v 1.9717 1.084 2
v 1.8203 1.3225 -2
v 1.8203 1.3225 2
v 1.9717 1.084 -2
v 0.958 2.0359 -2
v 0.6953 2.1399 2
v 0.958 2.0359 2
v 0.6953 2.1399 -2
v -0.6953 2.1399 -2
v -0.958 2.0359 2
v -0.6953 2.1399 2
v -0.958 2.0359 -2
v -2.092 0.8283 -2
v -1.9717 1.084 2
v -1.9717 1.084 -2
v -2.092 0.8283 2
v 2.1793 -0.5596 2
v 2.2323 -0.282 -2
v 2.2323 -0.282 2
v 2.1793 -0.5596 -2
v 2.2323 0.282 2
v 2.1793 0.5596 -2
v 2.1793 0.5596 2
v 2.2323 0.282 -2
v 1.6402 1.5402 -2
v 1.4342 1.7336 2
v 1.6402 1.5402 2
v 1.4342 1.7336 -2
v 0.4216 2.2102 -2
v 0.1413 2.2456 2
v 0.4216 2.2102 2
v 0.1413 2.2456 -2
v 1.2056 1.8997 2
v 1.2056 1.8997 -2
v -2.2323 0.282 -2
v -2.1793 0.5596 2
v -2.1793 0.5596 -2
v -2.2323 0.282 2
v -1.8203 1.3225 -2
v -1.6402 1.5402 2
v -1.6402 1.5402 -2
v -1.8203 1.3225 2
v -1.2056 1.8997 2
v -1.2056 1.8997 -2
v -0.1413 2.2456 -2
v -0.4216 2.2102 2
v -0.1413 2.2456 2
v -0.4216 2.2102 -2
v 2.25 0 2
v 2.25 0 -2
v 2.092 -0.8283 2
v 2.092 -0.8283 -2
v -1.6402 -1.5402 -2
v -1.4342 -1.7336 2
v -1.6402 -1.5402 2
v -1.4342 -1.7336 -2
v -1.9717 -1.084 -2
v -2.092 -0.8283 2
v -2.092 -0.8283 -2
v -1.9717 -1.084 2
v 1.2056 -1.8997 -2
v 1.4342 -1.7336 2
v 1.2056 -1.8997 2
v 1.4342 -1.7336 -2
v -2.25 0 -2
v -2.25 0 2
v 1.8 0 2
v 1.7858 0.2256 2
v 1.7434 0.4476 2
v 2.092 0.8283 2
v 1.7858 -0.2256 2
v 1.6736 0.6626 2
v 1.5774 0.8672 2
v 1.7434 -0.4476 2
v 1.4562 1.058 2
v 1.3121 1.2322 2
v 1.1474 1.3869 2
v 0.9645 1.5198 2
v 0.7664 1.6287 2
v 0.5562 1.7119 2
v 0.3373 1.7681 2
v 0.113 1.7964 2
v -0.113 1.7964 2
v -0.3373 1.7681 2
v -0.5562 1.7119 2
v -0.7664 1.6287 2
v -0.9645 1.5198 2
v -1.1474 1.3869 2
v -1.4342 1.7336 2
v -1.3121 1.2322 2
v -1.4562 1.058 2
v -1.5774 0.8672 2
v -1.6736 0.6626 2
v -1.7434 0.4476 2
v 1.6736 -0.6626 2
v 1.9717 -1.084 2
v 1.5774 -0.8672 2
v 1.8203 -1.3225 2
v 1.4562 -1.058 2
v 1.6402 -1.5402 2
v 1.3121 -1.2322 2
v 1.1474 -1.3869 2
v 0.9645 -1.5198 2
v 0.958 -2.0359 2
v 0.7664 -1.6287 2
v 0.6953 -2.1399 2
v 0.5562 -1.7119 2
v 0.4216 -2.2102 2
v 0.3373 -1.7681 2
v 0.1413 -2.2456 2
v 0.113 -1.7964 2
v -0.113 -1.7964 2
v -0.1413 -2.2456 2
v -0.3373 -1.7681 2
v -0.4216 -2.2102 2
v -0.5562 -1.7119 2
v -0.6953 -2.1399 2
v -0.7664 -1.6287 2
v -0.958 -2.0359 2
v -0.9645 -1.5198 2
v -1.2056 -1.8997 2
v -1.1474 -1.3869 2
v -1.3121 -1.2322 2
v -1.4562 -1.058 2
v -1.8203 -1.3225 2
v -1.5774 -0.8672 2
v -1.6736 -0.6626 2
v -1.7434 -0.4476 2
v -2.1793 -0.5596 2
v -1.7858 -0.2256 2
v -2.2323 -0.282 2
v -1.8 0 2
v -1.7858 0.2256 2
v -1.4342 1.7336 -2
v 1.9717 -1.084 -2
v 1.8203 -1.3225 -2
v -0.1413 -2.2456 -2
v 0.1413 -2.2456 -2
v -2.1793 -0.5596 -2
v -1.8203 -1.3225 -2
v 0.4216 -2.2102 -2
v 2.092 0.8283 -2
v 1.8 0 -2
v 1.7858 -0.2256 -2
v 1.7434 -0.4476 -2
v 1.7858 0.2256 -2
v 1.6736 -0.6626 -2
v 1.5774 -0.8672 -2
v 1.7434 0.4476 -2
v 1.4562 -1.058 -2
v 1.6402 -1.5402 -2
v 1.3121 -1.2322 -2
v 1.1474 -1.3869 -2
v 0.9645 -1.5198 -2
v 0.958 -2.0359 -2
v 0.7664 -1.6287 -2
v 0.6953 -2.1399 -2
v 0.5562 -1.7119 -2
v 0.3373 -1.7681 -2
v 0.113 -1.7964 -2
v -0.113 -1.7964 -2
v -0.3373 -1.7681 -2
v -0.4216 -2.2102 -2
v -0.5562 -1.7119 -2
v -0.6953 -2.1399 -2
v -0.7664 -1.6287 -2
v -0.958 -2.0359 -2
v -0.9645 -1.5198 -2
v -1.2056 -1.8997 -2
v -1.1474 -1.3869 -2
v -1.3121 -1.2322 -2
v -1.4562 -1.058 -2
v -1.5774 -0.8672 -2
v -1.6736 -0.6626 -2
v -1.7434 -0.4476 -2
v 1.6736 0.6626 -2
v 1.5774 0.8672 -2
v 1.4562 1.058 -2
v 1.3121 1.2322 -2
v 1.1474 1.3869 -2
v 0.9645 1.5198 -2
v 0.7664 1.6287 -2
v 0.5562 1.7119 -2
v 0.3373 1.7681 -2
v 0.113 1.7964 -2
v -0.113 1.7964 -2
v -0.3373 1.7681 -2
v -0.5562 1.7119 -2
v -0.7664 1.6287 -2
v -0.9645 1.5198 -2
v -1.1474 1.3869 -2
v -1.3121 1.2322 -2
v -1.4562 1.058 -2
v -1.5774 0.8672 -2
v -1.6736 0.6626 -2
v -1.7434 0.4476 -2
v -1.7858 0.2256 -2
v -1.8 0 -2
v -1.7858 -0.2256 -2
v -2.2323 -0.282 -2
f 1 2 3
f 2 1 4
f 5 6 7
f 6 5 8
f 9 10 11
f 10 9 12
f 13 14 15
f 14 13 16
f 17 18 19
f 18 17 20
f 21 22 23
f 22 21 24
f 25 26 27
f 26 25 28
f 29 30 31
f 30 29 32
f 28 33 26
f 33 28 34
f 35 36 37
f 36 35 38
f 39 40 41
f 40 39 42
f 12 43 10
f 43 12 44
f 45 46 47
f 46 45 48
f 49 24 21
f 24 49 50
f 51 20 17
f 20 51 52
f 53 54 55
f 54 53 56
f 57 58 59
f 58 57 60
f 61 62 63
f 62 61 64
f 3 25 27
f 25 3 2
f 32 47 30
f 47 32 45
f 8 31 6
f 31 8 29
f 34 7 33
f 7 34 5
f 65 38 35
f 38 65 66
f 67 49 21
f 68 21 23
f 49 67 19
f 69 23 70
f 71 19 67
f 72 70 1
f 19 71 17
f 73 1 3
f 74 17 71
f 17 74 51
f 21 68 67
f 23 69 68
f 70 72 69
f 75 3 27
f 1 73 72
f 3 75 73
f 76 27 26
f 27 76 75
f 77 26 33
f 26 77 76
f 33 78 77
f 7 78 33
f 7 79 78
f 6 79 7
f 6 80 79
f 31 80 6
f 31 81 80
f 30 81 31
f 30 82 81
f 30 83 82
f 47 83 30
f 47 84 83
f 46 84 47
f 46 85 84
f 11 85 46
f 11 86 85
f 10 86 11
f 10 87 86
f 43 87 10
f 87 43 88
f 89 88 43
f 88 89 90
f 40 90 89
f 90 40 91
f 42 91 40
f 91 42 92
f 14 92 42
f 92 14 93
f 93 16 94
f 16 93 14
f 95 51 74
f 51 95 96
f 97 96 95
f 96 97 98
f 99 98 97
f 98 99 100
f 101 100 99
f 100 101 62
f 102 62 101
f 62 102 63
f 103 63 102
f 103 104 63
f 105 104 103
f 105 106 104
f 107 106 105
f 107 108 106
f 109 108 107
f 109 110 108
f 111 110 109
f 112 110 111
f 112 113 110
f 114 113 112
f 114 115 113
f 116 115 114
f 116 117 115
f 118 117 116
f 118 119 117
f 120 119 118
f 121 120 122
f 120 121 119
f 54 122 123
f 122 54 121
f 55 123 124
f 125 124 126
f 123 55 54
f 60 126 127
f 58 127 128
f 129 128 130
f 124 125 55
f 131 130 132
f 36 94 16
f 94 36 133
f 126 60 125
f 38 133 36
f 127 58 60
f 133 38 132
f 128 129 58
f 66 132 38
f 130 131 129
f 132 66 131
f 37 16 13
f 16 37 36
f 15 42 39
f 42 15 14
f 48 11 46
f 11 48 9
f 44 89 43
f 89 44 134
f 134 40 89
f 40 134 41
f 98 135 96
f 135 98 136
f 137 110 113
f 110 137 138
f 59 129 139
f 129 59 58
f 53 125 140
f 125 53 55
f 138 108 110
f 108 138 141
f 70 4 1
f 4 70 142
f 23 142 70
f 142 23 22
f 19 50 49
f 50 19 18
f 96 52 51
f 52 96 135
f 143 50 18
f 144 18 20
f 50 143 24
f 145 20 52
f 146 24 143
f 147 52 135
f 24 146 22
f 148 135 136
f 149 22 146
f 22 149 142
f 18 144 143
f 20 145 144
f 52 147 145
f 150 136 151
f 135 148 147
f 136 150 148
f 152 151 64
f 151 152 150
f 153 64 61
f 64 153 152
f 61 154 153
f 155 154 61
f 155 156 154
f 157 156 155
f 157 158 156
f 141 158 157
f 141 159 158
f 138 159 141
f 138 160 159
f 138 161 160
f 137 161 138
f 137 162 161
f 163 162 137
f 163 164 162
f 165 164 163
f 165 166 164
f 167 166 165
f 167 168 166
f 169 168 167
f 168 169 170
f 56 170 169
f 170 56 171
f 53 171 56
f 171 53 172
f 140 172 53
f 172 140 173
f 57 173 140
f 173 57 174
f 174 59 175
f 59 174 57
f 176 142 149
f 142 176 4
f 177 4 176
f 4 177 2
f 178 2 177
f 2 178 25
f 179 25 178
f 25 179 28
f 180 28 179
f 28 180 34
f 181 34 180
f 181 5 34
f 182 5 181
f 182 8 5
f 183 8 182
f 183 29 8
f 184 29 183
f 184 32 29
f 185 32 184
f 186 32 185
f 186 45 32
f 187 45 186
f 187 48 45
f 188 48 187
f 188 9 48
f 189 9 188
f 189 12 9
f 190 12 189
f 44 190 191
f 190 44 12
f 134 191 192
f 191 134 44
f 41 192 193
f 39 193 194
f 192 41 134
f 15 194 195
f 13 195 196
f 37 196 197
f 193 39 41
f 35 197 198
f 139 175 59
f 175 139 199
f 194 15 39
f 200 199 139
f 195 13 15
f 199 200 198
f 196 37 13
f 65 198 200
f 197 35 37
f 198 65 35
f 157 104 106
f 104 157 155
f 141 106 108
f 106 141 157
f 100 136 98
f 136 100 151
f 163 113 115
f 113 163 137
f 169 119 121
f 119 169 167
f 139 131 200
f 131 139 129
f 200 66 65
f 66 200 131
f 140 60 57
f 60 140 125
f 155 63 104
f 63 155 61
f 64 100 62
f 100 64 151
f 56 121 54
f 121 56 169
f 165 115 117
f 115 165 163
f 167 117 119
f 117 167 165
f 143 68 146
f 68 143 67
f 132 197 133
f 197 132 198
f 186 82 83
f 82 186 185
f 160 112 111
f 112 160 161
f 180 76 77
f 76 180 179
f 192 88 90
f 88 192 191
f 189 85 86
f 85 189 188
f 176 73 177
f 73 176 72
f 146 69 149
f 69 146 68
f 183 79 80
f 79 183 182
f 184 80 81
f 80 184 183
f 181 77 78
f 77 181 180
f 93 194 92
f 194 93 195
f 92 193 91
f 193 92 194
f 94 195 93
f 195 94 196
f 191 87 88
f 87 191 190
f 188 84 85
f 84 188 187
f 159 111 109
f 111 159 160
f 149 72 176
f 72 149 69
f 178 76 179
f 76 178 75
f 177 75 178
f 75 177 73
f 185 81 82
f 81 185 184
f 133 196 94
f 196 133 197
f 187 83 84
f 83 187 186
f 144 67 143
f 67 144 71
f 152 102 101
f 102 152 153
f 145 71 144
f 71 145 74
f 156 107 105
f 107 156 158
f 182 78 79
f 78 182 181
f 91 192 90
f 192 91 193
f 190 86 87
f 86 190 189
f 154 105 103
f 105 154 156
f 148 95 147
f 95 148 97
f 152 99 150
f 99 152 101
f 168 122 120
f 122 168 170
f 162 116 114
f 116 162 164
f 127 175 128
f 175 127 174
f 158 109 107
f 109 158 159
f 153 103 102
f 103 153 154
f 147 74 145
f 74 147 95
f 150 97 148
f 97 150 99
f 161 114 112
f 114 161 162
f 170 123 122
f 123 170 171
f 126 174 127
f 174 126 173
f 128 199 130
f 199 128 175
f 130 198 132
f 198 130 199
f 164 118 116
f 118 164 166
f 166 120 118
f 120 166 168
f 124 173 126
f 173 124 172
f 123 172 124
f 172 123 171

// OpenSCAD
$fn = 50;


difference() {
	union() {
		translate(v = [0, 0, -2.0000000000]) {
			cylinder(h = 4, r = 2.2500000000);
		}
	}
	union() {
		translate(v = [0, 0, -100.0000000000]) {
			cylinder(h = 200, r = 1.8000000000);
		}
	}
}
